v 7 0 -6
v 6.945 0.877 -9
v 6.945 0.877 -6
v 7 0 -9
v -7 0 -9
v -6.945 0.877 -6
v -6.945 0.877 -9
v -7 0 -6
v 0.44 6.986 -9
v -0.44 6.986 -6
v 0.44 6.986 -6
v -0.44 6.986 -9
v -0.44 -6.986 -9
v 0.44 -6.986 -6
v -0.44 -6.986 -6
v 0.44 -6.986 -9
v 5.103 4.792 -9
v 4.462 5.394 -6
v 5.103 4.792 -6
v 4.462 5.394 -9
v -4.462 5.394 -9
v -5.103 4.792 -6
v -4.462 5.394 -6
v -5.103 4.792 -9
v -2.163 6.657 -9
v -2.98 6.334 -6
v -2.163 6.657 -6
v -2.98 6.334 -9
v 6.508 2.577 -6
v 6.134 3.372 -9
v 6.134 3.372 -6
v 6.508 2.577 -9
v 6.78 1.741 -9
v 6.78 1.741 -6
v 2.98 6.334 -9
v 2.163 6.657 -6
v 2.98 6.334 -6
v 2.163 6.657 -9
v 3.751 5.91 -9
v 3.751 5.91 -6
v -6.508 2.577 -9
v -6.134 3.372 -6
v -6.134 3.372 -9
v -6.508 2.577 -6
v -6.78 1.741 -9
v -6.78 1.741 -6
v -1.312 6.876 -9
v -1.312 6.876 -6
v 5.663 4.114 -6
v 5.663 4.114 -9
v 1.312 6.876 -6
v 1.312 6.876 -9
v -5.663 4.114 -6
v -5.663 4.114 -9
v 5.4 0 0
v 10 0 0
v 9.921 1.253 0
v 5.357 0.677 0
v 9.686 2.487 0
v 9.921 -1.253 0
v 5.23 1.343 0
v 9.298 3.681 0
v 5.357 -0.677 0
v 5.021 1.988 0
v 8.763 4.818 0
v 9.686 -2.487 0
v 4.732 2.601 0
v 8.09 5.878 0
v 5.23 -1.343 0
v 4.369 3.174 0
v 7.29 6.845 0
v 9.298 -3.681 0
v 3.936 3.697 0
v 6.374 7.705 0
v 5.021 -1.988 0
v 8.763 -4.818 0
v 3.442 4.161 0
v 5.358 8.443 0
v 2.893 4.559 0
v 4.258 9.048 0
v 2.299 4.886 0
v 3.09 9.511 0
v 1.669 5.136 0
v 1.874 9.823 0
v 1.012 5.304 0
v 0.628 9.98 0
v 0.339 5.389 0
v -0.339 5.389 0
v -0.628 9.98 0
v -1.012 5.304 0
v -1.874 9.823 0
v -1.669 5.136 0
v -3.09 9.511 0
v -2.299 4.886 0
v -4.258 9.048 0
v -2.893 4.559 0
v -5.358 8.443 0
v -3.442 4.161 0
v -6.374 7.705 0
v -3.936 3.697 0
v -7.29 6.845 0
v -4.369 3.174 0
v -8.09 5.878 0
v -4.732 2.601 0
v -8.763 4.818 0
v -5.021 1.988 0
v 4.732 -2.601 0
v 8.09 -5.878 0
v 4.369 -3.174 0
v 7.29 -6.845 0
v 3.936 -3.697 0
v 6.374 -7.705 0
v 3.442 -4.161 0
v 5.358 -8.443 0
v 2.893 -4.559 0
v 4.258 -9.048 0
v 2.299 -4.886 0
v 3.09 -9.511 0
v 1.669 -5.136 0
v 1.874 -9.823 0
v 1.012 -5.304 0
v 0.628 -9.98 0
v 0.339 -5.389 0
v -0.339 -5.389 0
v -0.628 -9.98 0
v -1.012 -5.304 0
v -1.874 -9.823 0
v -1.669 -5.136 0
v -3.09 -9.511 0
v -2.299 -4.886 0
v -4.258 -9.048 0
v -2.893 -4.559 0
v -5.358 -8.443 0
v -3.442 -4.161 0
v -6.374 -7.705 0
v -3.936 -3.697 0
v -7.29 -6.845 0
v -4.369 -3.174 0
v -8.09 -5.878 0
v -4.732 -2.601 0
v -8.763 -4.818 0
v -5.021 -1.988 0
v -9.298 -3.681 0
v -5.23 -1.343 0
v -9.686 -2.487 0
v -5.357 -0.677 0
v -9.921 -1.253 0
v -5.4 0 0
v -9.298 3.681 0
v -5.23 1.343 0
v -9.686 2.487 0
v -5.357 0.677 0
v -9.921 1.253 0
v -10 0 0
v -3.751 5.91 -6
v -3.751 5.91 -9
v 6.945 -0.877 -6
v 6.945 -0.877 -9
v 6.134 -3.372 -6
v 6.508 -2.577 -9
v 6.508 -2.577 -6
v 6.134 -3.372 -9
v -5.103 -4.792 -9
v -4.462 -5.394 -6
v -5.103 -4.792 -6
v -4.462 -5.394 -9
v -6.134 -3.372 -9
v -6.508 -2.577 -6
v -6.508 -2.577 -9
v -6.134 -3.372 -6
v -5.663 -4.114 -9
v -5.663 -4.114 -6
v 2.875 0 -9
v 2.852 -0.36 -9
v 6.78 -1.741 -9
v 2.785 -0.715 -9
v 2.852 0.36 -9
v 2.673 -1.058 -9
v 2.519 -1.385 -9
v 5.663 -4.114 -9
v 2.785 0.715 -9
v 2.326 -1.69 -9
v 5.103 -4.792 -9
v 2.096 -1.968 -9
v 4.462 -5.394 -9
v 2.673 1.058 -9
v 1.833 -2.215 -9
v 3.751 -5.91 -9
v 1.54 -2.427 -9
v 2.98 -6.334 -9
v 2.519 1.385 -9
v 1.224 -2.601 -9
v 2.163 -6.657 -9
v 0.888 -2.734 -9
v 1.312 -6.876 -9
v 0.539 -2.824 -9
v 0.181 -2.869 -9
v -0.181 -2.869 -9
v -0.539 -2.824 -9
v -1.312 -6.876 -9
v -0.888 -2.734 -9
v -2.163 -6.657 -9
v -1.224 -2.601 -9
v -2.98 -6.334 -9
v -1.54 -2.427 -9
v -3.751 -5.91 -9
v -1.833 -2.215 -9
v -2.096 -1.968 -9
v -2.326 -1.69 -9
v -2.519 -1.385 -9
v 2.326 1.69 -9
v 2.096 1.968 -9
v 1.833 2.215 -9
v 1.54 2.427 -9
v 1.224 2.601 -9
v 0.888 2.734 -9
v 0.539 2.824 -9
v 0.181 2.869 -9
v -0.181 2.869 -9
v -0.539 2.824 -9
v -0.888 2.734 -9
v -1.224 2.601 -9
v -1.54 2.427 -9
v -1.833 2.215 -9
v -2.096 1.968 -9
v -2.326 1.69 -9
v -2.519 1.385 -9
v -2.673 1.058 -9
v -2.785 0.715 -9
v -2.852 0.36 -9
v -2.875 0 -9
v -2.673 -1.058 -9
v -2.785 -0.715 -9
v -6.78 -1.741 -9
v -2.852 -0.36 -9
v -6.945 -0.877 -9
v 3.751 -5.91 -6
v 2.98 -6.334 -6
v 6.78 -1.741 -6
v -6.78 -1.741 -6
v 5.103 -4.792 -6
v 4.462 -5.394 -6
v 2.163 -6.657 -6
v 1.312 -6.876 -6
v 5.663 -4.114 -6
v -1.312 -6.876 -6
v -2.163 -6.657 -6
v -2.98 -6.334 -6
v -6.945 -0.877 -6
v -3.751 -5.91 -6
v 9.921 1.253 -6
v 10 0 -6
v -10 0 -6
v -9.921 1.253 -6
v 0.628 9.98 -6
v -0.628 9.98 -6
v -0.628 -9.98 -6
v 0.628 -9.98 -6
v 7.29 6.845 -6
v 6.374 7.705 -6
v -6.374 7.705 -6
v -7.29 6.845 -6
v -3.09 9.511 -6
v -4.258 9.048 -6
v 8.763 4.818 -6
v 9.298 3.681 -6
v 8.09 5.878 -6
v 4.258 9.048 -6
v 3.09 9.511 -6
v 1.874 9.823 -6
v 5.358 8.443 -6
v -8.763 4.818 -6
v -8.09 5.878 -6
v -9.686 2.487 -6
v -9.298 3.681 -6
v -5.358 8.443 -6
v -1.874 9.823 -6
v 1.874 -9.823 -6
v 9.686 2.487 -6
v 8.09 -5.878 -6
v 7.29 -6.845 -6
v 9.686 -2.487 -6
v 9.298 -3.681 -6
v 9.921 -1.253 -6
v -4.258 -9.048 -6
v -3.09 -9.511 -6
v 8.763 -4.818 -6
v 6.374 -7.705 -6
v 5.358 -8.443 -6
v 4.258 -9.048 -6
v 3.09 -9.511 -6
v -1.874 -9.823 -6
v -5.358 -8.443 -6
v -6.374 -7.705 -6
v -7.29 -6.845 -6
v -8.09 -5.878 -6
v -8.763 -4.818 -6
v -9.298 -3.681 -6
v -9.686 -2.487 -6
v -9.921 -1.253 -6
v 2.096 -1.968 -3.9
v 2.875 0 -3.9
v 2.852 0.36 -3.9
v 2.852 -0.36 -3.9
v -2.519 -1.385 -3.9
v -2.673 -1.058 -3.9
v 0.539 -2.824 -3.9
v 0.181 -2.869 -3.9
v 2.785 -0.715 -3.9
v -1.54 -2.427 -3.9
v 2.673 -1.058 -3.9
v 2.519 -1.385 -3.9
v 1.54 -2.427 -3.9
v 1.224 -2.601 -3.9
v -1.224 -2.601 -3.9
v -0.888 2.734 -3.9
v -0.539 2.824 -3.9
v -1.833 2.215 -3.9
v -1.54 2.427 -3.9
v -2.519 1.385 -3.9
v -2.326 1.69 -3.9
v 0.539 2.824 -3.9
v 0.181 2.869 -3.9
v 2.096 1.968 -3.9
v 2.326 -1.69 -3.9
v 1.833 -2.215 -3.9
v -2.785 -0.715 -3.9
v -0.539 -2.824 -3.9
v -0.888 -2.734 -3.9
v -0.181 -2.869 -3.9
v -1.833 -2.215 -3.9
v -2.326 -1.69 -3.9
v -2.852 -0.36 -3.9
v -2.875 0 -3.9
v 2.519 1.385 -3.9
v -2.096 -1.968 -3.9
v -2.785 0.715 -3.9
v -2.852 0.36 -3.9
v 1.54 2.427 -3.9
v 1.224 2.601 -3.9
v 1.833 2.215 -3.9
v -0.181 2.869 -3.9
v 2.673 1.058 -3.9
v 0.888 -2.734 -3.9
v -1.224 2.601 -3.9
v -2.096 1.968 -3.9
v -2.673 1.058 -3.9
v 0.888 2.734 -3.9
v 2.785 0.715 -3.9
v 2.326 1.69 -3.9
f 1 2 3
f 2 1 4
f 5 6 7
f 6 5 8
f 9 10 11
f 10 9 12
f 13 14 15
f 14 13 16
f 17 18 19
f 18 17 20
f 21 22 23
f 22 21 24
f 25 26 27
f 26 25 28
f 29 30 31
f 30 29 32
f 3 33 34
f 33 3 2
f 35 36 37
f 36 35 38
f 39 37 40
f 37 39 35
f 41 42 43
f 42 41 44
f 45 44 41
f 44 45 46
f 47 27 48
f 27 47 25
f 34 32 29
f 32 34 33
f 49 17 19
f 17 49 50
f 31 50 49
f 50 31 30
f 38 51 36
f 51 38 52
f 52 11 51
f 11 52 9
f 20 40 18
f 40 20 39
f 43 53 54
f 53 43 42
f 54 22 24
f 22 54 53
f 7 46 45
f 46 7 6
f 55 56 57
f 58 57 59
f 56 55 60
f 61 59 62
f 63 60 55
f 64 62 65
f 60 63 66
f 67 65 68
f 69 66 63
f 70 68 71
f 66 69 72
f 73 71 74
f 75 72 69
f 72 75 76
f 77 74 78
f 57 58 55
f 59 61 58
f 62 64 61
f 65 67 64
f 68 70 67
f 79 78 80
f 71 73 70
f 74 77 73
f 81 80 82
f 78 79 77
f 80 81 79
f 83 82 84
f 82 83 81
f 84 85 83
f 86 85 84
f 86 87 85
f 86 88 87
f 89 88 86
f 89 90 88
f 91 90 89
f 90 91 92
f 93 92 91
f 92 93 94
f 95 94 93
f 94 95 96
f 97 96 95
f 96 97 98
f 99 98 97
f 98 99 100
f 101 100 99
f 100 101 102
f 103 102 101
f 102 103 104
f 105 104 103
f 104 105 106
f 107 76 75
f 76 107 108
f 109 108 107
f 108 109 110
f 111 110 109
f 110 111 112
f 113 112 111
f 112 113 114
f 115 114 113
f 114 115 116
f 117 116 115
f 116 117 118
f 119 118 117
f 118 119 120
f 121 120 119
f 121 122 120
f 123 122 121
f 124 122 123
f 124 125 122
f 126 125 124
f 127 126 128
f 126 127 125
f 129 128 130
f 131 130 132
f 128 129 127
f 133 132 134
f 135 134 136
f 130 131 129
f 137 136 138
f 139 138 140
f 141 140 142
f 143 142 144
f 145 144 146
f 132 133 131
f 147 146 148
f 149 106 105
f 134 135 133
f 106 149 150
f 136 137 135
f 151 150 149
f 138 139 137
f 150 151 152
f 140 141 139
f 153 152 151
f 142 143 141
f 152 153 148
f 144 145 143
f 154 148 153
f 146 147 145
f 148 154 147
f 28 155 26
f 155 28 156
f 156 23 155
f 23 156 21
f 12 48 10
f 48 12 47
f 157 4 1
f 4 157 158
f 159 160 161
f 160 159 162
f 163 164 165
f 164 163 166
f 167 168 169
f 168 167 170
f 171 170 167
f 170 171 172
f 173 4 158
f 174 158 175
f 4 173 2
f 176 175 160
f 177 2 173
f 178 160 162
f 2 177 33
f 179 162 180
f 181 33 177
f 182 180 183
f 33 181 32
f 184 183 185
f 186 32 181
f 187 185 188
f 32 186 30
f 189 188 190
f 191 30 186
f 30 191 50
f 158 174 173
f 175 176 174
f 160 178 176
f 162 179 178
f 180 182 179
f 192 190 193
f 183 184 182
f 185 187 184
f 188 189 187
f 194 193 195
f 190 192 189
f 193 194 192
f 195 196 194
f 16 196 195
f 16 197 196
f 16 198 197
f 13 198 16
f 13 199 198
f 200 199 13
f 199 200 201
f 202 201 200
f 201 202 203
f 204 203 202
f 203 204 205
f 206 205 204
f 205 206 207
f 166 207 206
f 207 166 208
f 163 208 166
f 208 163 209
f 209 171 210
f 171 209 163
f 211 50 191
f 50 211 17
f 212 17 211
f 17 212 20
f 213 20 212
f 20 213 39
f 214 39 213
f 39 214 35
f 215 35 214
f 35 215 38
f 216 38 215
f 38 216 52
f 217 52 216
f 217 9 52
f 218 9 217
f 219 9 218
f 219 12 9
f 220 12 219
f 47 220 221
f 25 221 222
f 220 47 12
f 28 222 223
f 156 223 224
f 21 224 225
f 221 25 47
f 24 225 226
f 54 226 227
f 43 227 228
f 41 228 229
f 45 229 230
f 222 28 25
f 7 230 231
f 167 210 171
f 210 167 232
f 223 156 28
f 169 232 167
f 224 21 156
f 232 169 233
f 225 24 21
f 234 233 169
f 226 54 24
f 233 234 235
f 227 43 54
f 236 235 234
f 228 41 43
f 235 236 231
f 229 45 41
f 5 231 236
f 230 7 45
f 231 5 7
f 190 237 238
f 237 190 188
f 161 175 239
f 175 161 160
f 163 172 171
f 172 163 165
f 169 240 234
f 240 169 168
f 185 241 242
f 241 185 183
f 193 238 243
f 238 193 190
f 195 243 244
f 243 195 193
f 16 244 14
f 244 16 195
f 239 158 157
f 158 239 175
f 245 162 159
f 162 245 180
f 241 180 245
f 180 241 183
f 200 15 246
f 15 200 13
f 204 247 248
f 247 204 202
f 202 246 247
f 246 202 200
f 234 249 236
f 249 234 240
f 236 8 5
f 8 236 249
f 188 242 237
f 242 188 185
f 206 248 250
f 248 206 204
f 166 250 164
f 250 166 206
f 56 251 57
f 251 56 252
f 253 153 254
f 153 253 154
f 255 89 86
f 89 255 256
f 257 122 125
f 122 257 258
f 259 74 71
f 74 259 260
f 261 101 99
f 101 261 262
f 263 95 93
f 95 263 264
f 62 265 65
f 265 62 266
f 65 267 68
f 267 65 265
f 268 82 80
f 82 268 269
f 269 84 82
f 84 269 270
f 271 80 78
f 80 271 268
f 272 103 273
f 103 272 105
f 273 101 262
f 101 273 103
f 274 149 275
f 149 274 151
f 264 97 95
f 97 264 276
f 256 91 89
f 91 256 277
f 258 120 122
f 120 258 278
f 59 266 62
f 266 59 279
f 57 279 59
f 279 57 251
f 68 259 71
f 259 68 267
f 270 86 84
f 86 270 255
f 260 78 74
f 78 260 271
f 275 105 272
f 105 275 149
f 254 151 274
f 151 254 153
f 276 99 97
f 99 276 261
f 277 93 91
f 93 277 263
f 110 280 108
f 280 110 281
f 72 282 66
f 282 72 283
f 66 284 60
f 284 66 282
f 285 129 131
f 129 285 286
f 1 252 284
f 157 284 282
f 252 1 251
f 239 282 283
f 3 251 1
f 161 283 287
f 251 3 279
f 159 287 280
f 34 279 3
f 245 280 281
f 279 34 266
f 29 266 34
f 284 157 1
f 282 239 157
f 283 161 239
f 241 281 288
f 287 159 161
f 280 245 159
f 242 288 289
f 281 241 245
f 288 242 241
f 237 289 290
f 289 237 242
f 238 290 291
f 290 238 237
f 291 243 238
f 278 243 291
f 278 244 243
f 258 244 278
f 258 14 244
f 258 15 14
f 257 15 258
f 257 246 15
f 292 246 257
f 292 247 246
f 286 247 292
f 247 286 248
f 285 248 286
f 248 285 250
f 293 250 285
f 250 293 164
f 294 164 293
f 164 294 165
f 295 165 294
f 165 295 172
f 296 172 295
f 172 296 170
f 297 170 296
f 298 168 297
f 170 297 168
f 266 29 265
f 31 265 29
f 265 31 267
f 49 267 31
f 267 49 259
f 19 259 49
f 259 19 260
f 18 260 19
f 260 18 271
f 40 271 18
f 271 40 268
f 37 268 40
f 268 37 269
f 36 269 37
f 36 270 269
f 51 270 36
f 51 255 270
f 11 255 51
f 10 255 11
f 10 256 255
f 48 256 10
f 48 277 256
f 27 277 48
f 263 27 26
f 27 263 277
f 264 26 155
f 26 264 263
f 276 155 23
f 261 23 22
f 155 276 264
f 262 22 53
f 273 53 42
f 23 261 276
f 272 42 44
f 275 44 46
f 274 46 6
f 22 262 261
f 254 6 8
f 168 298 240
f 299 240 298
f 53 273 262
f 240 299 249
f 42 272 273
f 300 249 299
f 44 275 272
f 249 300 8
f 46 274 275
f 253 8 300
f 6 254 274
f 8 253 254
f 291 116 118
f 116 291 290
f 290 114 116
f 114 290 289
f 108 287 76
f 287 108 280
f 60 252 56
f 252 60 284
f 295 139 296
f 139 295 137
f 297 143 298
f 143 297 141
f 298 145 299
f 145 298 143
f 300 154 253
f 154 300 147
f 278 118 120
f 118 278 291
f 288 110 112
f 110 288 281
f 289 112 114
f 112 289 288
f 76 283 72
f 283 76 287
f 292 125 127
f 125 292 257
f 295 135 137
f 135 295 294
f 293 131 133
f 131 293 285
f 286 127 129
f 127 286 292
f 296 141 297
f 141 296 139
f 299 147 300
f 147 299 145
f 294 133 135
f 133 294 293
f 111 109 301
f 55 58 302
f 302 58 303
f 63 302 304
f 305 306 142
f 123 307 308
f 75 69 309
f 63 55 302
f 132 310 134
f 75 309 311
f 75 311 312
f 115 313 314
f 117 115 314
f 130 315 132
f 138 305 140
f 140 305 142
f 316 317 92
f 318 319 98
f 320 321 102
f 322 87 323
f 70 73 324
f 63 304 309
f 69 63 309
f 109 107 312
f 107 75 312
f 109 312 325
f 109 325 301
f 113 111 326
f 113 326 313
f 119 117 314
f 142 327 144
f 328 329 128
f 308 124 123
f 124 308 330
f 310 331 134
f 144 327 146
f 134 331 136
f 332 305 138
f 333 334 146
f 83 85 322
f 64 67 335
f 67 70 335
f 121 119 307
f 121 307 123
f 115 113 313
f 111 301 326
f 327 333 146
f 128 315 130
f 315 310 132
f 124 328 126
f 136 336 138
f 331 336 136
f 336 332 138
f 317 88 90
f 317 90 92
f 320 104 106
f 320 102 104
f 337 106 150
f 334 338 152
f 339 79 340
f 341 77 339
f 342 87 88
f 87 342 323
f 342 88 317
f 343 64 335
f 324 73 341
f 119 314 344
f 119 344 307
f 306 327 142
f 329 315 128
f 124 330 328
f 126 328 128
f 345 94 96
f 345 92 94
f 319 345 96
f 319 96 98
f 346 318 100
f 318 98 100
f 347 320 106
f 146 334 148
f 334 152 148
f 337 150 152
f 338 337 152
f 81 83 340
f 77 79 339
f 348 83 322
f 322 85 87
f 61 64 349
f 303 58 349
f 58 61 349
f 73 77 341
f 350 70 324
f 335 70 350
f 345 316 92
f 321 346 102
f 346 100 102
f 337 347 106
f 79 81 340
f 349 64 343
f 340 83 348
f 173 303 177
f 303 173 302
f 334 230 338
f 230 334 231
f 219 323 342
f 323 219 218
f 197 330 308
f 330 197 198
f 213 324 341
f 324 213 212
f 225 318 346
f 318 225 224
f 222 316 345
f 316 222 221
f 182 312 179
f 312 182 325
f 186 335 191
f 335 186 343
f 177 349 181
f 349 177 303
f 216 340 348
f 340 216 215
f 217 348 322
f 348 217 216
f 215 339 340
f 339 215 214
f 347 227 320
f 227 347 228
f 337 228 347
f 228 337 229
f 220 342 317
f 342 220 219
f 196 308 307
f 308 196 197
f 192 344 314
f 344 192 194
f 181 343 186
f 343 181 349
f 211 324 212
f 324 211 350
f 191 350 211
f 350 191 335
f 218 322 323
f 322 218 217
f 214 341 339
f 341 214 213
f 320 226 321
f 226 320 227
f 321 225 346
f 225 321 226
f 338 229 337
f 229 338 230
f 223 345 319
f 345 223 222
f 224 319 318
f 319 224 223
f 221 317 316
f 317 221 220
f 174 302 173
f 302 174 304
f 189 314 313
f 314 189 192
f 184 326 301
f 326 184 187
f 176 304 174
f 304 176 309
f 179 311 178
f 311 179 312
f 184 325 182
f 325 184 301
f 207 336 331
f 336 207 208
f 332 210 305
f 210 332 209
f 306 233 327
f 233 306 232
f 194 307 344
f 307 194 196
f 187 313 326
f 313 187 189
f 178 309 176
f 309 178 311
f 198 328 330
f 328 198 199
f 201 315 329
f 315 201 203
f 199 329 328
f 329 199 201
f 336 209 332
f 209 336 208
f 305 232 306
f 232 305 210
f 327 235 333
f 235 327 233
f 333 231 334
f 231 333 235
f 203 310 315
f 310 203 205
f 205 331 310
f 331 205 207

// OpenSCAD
$fn = 50;


difference() {
	union() {
		translate(v = [0, 0, -9.0000000000]) {
			cylinder(h = 9, r = 7.0000000000);
		}
		translate(v = [0, 0, -6.0000000000]) {
			cylinder(h = 6, r = 10.0000000000);
		}
	}
	union() {
		translate(v = [0, 0, 0]) {
			rotate(a = [0, 0, 0]) {
				difference() {
					union() {
						#translate(v = [0, 0, -9.0000000000]) {
							cylinder(h = 9, r = 2.6000000000);
						}
						#translate(v = [0, 0, -3.9000000000]) {
							cylinder(h = 3.9000000000, r = 7.0000000000, r1 = 2.8750000000, r2 = 5.4000000000);
						}
						#translate(v = [0, 0, -9.0000000000]) {
							cylinder(h = 9, r = 2.8750000000);
						}
						#translate(v = [0, 0, -9.0000000000]) {
							cylinder(h = 9, r = 2.6000000000);
						}
					}
					union();
				}
			}
		}
	}
}
